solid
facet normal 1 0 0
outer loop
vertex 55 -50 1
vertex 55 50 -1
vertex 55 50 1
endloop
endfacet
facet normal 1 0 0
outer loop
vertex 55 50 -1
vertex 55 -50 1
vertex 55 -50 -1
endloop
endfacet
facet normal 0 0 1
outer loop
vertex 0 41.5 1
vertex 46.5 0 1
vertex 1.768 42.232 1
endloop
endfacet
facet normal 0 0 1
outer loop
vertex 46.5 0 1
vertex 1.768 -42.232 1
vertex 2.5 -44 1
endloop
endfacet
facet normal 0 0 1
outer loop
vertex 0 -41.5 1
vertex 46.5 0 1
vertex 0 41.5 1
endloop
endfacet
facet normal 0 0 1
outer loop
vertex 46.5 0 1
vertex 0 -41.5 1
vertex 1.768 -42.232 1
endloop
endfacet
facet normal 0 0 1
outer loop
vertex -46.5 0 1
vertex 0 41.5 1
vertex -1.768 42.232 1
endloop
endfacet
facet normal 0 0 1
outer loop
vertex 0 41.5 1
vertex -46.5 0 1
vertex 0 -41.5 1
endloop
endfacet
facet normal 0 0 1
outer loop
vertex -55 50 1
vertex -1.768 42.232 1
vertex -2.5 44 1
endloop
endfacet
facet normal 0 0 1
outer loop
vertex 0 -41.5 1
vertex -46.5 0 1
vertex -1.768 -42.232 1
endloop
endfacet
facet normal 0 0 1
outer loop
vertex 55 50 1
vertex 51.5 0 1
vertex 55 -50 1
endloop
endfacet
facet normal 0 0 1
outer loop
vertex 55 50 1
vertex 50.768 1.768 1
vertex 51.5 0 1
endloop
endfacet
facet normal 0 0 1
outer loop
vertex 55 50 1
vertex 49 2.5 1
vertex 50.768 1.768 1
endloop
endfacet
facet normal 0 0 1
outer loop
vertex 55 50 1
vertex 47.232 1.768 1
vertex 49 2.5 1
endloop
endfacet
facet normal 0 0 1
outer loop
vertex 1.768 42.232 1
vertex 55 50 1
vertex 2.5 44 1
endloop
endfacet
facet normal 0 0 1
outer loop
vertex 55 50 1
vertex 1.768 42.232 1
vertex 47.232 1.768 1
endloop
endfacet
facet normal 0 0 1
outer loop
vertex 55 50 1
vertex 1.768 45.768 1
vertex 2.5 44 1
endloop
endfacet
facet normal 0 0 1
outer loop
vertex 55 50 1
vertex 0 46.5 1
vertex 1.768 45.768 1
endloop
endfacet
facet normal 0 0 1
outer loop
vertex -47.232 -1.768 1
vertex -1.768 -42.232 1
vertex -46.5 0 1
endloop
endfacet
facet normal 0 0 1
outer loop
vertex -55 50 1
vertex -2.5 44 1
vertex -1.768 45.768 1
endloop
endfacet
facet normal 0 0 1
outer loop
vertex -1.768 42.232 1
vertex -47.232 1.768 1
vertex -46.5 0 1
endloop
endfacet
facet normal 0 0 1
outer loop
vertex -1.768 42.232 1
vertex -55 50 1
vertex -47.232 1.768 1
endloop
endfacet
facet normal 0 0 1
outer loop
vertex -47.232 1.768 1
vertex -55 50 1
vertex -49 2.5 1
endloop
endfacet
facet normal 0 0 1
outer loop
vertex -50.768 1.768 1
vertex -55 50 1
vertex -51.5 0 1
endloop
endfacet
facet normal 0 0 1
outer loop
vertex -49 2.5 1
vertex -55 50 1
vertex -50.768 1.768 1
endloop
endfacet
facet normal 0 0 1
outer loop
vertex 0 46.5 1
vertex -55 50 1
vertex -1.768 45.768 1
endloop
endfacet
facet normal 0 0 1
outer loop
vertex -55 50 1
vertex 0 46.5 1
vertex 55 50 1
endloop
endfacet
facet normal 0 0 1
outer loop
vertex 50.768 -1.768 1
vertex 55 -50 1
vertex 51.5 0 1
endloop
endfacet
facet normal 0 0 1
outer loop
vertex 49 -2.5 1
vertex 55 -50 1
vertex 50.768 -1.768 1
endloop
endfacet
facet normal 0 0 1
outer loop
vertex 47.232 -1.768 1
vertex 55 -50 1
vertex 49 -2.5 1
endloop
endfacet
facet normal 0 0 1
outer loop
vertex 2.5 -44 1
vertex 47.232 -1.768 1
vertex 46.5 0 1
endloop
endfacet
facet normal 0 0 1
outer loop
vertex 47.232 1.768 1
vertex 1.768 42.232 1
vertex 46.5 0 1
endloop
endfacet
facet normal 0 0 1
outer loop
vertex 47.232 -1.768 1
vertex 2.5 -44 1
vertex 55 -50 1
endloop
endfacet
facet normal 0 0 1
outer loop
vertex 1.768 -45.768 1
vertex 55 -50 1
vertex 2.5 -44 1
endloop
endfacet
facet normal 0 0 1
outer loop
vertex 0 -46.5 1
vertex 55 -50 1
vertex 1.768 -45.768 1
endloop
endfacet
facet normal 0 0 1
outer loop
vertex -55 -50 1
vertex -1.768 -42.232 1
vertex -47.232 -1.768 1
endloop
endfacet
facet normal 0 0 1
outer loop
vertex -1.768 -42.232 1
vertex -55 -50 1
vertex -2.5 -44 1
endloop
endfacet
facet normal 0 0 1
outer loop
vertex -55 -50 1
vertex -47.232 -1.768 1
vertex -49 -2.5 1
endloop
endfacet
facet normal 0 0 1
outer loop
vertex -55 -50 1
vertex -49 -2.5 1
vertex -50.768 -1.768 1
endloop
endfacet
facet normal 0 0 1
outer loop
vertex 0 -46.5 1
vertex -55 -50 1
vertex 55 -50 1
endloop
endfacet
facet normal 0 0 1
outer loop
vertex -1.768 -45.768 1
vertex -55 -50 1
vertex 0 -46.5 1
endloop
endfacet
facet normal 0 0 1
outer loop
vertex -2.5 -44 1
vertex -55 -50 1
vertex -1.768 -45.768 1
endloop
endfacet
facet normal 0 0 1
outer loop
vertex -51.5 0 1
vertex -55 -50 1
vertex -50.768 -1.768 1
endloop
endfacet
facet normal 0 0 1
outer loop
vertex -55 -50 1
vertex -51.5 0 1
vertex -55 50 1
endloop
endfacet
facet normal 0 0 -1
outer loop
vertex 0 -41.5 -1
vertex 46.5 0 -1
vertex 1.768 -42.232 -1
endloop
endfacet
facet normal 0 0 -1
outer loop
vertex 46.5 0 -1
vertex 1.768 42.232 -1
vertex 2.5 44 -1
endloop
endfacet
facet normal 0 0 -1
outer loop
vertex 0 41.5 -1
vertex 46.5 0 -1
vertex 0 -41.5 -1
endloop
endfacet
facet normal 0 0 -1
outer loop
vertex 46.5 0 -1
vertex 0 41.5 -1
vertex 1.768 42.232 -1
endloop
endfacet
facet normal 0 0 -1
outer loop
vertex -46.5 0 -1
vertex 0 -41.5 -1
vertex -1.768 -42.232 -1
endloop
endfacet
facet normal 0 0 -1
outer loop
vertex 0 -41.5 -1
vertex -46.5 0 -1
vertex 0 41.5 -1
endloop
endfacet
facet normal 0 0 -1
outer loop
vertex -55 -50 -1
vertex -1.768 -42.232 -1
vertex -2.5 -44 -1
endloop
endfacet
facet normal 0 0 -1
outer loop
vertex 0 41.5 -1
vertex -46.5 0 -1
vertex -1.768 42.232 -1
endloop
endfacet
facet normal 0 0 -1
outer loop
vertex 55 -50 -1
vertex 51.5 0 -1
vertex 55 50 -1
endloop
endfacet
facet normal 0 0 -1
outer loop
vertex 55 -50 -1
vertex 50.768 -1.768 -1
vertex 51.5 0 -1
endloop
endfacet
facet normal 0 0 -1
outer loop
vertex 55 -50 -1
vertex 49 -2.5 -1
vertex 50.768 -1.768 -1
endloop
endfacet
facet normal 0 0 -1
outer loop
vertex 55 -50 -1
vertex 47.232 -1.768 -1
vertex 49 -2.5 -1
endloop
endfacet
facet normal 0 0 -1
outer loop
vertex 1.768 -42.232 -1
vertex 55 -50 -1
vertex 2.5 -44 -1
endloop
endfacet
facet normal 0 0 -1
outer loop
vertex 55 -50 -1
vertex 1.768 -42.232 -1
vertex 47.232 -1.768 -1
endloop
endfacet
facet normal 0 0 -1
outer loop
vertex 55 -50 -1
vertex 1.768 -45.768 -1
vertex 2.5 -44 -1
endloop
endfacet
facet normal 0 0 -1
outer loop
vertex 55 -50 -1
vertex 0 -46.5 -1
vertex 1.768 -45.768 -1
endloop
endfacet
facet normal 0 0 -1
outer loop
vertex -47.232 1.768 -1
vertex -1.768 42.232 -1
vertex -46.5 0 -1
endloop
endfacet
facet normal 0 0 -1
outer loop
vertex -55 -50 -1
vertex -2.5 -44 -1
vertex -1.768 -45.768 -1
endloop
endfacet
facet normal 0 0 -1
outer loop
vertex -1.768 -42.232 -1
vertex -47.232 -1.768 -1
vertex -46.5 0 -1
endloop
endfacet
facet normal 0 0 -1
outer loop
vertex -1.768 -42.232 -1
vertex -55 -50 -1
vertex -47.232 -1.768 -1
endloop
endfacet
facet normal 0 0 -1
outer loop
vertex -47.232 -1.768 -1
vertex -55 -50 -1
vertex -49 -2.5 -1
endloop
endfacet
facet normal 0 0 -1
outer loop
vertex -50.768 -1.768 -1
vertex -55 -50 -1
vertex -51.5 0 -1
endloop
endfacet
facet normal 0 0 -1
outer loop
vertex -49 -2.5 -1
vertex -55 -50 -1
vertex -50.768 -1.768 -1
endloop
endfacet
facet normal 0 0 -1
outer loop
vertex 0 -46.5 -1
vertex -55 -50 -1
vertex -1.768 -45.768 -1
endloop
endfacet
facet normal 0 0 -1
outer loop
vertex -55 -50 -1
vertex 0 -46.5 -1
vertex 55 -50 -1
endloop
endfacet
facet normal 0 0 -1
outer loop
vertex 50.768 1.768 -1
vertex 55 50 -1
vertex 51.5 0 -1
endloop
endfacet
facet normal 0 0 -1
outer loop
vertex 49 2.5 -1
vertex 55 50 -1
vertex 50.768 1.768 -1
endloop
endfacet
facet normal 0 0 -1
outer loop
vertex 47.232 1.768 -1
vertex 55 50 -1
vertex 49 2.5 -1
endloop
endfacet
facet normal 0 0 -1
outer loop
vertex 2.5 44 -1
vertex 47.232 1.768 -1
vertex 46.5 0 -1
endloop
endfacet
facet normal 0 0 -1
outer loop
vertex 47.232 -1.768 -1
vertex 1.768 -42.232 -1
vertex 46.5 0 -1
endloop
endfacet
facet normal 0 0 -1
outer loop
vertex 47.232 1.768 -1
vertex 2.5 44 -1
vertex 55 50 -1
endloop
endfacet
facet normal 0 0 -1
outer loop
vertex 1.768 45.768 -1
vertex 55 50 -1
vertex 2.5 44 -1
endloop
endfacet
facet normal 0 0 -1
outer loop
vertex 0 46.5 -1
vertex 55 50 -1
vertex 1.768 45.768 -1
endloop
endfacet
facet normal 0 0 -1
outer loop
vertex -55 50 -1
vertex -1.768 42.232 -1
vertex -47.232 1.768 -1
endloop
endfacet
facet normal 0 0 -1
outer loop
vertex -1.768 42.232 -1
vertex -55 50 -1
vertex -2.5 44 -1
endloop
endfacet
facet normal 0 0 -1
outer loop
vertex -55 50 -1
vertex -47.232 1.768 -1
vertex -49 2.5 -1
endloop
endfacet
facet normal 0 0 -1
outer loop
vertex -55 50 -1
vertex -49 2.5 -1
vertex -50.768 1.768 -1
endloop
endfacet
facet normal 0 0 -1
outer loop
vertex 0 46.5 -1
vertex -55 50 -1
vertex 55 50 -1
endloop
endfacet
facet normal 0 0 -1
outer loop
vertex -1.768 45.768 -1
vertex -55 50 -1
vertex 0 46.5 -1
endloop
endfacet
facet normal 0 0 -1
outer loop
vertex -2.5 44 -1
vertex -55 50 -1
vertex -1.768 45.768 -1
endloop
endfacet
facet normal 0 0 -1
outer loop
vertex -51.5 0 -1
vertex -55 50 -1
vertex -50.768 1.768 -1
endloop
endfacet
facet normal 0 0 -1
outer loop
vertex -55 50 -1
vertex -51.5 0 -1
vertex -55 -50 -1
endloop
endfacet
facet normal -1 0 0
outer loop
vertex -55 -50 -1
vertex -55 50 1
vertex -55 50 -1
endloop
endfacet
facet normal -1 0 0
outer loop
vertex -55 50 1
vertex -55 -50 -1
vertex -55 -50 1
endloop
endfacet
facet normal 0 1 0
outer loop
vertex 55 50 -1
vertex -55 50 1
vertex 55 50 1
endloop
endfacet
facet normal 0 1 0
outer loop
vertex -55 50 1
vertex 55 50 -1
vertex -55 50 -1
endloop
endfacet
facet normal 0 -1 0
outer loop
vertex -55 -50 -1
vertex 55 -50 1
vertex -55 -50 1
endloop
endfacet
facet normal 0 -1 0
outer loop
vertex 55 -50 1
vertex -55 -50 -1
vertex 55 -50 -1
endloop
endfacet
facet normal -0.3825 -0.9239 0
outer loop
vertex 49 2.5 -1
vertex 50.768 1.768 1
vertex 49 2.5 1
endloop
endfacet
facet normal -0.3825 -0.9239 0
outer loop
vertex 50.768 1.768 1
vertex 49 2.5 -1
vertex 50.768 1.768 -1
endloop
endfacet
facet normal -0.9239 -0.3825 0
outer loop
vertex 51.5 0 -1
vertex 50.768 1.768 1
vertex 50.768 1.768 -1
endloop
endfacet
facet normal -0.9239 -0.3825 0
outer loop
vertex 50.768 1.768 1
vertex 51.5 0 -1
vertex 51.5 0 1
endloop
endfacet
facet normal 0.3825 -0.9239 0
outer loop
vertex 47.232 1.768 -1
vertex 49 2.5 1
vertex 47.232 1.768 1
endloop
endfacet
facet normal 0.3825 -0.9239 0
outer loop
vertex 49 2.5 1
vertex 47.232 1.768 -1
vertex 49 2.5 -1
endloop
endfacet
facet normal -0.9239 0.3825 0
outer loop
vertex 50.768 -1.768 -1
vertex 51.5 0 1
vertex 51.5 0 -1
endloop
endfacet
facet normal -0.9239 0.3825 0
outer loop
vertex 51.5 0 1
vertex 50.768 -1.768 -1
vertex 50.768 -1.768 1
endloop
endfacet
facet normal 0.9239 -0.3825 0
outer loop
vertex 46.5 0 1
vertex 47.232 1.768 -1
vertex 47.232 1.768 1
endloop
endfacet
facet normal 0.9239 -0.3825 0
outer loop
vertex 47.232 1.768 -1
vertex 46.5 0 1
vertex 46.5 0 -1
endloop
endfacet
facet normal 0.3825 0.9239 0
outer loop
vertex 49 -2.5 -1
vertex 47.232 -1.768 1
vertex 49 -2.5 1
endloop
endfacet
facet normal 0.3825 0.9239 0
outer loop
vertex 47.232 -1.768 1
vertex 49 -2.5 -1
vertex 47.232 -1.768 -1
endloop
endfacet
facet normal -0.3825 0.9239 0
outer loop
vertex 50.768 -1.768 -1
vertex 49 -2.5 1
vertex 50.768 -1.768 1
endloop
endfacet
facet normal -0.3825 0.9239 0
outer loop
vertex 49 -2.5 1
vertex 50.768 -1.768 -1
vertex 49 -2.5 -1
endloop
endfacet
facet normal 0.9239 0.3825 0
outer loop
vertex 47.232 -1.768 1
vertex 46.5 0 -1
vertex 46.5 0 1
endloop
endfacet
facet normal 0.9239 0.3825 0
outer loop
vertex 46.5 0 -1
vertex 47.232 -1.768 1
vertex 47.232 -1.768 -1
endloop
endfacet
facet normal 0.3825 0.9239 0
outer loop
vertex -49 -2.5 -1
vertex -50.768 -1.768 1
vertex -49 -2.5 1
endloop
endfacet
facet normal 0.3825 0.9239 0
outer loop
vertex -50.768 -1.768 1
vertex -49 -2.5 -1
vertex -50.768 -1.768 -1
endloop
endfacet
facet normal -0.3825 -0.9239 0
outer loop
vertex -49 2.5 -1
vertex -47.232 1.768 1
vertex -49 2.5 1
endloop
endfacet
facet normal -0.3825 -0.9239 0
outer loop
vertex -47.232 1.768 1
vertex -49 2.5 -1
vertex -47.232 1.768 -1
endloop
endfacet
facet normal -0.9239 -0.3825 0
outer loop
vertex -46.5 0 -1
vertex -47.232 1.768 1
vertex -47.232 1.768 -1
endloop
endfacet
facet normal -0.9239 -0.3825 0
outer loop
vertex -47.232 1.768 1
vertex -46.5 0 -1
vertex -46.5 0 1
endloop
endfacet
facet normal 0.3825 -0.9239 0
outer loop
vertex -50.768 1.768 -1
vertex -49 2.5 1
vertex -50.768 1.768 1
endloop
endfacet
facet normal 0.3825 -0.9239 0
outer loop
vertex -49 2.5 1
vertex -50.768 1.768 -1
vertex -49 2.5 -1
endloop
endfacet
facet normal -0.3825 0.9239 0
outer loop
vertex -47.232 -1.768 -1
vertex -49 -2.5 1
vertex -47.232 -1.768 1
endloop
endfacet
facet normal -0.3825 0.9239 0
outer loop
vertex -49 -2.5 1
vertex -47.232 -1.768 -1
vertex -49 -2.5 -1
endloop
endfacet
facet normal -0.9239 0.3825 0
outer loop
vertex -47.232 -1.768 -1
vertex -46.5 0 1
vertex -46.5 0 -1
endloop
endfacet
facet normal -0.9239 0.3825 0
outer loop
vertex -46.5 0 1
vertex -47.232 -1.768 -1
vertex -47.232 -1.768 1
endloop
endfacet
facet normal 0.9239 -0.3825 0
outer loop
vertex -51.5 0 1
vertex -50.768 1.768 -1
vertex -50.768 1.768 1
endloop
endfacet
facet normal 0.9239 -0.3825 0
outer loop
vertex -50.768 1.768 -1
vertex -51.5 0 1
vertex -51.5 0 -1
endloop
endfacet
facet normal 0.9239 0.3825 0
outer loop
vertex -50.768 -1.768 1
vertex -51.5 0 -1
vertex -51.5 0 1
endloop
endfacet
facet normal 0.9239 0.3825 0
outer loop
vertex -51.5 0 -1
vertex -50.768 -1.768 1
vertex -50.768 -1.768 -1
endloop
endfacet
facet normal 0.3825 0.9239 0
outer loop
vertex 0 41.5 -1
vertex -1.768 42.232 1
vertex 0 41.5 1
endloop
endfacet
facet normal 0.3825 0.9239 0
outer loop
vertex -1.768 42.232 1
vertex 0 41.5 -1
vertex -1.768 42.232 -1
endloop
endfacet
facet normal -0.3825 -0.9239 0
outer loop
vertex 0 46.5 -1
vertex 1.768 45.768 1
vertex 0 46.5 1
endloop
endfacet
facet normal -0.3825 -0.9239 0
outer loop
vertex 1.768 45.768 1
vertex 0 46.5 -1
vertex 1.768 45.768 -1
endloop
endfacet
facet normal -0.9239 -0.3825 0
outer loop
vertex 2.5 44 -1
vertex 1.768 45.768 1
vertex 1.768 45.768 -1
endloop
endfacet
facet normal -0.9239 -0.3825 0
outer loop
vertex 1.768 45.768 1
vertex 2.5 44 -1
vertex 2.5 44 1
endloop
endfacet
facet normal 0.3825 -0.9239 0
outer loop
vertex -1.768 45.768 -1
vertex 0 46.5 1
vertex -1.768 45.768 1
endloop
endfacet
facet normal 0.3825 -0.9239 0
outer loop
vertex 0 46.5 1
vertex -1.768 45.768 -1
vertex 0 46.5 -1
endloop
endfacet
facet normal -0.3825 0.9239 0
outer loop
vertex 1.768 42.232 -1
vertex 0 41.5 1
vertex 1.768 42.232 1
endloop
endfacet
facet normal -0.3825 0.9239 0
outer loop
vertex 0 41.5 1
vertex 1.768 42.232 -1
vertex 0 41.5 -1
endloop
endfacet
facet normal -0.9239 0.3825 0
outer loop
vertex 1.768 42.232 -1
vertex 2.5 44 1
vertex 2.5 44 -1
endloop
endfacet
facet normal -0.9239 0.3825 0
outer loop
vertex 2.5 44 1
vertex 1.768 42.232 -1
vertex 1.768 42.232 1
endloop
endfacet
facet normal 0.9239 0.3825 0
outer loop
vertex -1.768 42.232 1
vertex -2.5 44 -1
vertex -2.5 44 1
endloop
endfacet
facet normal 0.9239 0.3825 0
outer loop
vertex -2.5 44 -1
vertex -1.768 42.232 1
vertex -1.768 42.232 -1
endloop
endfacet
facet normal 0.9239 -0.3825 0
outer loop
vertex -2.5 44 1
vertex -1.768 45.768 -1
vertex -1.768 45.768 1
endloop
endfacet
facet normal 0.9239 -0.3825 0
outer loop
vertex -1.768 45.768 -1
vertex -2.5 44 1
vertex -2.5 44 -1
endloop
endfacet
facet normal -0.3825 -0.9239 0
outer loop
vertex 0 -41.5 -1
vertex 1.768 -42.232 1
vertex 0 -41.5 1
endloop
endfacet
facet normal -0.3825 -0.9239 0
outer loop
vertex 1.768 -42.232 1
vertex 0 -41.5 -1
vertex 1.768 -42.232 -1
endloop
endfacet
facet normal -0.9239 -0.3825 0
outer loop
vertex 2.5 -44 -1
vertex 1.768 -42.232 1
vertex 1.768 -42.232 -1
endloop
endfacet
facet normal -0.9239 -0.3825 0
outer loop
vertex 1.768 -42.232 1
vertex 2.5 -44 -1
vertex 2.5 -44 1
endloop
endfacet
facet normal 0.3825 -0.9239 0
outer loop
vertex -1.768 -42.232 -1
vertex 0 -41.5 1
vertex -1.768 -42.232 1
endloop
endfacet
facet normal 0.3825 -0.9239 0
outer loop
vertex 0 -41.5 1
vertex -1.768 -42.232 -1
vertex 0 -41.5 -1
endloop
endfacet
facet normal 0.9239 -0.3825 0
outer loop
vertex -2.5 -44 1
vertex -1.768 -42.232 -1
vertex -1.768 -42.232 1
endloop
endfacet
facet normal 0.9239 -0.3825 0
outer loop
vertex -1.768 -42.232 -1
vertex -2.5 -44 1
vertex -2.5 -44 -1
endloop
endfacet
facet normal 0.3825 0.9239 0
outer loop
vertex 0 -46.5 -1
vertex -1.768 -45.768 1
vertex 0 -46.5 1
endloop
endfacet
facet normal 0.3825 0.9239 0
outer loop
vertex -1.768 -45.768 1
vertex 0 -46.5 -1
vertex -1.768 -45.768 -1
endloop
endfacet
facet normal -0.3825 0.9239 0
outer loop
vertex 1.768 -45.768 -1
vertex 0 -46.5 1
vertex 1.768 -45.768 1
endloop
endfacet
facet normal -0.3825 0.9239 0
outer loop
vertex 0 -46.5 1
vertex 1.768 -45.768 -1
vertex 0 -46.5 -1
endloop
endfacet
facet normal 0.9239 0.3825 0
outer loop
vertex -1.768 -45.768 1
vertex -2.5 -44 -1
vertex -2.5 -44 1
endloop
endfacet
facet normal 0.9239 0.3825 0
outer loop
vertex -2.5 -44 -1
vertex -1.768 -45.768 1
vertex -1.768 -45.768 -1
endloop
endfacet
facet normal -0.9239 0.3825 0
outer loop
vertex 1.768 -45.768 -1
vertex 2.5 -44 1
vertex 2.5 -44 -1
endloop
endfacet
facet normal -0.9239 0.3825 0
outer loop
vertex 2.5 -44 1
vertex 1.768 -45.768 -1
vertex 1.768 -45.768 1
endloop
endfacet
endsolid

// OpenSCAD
//Quartz Window model
module window(x, y, t,s_d){
    difference(){
        difference(){
            difference(){
                difference(){
                    cube([x,y,t],center=true);
                    
//screws holes for quartz
 //1
 translate([x/2-6,0,0])
 cylinder(r=s_d/2,h=t+1, center=true);
 }
//2
  translate([-(x/2-6),0,0])
 cylinder(r=s_d/2,h=t+1, center=true);
}
//3
translate([0,(y/2-6),0])
 cylinder(r=s_d/2,h=t+1, center=true);
}
//4
translate([0,-(y/2-6),0])
 cylinder(r=s_d/2,h=t+1, center=true);

}
}
window(110,100,2,5);
